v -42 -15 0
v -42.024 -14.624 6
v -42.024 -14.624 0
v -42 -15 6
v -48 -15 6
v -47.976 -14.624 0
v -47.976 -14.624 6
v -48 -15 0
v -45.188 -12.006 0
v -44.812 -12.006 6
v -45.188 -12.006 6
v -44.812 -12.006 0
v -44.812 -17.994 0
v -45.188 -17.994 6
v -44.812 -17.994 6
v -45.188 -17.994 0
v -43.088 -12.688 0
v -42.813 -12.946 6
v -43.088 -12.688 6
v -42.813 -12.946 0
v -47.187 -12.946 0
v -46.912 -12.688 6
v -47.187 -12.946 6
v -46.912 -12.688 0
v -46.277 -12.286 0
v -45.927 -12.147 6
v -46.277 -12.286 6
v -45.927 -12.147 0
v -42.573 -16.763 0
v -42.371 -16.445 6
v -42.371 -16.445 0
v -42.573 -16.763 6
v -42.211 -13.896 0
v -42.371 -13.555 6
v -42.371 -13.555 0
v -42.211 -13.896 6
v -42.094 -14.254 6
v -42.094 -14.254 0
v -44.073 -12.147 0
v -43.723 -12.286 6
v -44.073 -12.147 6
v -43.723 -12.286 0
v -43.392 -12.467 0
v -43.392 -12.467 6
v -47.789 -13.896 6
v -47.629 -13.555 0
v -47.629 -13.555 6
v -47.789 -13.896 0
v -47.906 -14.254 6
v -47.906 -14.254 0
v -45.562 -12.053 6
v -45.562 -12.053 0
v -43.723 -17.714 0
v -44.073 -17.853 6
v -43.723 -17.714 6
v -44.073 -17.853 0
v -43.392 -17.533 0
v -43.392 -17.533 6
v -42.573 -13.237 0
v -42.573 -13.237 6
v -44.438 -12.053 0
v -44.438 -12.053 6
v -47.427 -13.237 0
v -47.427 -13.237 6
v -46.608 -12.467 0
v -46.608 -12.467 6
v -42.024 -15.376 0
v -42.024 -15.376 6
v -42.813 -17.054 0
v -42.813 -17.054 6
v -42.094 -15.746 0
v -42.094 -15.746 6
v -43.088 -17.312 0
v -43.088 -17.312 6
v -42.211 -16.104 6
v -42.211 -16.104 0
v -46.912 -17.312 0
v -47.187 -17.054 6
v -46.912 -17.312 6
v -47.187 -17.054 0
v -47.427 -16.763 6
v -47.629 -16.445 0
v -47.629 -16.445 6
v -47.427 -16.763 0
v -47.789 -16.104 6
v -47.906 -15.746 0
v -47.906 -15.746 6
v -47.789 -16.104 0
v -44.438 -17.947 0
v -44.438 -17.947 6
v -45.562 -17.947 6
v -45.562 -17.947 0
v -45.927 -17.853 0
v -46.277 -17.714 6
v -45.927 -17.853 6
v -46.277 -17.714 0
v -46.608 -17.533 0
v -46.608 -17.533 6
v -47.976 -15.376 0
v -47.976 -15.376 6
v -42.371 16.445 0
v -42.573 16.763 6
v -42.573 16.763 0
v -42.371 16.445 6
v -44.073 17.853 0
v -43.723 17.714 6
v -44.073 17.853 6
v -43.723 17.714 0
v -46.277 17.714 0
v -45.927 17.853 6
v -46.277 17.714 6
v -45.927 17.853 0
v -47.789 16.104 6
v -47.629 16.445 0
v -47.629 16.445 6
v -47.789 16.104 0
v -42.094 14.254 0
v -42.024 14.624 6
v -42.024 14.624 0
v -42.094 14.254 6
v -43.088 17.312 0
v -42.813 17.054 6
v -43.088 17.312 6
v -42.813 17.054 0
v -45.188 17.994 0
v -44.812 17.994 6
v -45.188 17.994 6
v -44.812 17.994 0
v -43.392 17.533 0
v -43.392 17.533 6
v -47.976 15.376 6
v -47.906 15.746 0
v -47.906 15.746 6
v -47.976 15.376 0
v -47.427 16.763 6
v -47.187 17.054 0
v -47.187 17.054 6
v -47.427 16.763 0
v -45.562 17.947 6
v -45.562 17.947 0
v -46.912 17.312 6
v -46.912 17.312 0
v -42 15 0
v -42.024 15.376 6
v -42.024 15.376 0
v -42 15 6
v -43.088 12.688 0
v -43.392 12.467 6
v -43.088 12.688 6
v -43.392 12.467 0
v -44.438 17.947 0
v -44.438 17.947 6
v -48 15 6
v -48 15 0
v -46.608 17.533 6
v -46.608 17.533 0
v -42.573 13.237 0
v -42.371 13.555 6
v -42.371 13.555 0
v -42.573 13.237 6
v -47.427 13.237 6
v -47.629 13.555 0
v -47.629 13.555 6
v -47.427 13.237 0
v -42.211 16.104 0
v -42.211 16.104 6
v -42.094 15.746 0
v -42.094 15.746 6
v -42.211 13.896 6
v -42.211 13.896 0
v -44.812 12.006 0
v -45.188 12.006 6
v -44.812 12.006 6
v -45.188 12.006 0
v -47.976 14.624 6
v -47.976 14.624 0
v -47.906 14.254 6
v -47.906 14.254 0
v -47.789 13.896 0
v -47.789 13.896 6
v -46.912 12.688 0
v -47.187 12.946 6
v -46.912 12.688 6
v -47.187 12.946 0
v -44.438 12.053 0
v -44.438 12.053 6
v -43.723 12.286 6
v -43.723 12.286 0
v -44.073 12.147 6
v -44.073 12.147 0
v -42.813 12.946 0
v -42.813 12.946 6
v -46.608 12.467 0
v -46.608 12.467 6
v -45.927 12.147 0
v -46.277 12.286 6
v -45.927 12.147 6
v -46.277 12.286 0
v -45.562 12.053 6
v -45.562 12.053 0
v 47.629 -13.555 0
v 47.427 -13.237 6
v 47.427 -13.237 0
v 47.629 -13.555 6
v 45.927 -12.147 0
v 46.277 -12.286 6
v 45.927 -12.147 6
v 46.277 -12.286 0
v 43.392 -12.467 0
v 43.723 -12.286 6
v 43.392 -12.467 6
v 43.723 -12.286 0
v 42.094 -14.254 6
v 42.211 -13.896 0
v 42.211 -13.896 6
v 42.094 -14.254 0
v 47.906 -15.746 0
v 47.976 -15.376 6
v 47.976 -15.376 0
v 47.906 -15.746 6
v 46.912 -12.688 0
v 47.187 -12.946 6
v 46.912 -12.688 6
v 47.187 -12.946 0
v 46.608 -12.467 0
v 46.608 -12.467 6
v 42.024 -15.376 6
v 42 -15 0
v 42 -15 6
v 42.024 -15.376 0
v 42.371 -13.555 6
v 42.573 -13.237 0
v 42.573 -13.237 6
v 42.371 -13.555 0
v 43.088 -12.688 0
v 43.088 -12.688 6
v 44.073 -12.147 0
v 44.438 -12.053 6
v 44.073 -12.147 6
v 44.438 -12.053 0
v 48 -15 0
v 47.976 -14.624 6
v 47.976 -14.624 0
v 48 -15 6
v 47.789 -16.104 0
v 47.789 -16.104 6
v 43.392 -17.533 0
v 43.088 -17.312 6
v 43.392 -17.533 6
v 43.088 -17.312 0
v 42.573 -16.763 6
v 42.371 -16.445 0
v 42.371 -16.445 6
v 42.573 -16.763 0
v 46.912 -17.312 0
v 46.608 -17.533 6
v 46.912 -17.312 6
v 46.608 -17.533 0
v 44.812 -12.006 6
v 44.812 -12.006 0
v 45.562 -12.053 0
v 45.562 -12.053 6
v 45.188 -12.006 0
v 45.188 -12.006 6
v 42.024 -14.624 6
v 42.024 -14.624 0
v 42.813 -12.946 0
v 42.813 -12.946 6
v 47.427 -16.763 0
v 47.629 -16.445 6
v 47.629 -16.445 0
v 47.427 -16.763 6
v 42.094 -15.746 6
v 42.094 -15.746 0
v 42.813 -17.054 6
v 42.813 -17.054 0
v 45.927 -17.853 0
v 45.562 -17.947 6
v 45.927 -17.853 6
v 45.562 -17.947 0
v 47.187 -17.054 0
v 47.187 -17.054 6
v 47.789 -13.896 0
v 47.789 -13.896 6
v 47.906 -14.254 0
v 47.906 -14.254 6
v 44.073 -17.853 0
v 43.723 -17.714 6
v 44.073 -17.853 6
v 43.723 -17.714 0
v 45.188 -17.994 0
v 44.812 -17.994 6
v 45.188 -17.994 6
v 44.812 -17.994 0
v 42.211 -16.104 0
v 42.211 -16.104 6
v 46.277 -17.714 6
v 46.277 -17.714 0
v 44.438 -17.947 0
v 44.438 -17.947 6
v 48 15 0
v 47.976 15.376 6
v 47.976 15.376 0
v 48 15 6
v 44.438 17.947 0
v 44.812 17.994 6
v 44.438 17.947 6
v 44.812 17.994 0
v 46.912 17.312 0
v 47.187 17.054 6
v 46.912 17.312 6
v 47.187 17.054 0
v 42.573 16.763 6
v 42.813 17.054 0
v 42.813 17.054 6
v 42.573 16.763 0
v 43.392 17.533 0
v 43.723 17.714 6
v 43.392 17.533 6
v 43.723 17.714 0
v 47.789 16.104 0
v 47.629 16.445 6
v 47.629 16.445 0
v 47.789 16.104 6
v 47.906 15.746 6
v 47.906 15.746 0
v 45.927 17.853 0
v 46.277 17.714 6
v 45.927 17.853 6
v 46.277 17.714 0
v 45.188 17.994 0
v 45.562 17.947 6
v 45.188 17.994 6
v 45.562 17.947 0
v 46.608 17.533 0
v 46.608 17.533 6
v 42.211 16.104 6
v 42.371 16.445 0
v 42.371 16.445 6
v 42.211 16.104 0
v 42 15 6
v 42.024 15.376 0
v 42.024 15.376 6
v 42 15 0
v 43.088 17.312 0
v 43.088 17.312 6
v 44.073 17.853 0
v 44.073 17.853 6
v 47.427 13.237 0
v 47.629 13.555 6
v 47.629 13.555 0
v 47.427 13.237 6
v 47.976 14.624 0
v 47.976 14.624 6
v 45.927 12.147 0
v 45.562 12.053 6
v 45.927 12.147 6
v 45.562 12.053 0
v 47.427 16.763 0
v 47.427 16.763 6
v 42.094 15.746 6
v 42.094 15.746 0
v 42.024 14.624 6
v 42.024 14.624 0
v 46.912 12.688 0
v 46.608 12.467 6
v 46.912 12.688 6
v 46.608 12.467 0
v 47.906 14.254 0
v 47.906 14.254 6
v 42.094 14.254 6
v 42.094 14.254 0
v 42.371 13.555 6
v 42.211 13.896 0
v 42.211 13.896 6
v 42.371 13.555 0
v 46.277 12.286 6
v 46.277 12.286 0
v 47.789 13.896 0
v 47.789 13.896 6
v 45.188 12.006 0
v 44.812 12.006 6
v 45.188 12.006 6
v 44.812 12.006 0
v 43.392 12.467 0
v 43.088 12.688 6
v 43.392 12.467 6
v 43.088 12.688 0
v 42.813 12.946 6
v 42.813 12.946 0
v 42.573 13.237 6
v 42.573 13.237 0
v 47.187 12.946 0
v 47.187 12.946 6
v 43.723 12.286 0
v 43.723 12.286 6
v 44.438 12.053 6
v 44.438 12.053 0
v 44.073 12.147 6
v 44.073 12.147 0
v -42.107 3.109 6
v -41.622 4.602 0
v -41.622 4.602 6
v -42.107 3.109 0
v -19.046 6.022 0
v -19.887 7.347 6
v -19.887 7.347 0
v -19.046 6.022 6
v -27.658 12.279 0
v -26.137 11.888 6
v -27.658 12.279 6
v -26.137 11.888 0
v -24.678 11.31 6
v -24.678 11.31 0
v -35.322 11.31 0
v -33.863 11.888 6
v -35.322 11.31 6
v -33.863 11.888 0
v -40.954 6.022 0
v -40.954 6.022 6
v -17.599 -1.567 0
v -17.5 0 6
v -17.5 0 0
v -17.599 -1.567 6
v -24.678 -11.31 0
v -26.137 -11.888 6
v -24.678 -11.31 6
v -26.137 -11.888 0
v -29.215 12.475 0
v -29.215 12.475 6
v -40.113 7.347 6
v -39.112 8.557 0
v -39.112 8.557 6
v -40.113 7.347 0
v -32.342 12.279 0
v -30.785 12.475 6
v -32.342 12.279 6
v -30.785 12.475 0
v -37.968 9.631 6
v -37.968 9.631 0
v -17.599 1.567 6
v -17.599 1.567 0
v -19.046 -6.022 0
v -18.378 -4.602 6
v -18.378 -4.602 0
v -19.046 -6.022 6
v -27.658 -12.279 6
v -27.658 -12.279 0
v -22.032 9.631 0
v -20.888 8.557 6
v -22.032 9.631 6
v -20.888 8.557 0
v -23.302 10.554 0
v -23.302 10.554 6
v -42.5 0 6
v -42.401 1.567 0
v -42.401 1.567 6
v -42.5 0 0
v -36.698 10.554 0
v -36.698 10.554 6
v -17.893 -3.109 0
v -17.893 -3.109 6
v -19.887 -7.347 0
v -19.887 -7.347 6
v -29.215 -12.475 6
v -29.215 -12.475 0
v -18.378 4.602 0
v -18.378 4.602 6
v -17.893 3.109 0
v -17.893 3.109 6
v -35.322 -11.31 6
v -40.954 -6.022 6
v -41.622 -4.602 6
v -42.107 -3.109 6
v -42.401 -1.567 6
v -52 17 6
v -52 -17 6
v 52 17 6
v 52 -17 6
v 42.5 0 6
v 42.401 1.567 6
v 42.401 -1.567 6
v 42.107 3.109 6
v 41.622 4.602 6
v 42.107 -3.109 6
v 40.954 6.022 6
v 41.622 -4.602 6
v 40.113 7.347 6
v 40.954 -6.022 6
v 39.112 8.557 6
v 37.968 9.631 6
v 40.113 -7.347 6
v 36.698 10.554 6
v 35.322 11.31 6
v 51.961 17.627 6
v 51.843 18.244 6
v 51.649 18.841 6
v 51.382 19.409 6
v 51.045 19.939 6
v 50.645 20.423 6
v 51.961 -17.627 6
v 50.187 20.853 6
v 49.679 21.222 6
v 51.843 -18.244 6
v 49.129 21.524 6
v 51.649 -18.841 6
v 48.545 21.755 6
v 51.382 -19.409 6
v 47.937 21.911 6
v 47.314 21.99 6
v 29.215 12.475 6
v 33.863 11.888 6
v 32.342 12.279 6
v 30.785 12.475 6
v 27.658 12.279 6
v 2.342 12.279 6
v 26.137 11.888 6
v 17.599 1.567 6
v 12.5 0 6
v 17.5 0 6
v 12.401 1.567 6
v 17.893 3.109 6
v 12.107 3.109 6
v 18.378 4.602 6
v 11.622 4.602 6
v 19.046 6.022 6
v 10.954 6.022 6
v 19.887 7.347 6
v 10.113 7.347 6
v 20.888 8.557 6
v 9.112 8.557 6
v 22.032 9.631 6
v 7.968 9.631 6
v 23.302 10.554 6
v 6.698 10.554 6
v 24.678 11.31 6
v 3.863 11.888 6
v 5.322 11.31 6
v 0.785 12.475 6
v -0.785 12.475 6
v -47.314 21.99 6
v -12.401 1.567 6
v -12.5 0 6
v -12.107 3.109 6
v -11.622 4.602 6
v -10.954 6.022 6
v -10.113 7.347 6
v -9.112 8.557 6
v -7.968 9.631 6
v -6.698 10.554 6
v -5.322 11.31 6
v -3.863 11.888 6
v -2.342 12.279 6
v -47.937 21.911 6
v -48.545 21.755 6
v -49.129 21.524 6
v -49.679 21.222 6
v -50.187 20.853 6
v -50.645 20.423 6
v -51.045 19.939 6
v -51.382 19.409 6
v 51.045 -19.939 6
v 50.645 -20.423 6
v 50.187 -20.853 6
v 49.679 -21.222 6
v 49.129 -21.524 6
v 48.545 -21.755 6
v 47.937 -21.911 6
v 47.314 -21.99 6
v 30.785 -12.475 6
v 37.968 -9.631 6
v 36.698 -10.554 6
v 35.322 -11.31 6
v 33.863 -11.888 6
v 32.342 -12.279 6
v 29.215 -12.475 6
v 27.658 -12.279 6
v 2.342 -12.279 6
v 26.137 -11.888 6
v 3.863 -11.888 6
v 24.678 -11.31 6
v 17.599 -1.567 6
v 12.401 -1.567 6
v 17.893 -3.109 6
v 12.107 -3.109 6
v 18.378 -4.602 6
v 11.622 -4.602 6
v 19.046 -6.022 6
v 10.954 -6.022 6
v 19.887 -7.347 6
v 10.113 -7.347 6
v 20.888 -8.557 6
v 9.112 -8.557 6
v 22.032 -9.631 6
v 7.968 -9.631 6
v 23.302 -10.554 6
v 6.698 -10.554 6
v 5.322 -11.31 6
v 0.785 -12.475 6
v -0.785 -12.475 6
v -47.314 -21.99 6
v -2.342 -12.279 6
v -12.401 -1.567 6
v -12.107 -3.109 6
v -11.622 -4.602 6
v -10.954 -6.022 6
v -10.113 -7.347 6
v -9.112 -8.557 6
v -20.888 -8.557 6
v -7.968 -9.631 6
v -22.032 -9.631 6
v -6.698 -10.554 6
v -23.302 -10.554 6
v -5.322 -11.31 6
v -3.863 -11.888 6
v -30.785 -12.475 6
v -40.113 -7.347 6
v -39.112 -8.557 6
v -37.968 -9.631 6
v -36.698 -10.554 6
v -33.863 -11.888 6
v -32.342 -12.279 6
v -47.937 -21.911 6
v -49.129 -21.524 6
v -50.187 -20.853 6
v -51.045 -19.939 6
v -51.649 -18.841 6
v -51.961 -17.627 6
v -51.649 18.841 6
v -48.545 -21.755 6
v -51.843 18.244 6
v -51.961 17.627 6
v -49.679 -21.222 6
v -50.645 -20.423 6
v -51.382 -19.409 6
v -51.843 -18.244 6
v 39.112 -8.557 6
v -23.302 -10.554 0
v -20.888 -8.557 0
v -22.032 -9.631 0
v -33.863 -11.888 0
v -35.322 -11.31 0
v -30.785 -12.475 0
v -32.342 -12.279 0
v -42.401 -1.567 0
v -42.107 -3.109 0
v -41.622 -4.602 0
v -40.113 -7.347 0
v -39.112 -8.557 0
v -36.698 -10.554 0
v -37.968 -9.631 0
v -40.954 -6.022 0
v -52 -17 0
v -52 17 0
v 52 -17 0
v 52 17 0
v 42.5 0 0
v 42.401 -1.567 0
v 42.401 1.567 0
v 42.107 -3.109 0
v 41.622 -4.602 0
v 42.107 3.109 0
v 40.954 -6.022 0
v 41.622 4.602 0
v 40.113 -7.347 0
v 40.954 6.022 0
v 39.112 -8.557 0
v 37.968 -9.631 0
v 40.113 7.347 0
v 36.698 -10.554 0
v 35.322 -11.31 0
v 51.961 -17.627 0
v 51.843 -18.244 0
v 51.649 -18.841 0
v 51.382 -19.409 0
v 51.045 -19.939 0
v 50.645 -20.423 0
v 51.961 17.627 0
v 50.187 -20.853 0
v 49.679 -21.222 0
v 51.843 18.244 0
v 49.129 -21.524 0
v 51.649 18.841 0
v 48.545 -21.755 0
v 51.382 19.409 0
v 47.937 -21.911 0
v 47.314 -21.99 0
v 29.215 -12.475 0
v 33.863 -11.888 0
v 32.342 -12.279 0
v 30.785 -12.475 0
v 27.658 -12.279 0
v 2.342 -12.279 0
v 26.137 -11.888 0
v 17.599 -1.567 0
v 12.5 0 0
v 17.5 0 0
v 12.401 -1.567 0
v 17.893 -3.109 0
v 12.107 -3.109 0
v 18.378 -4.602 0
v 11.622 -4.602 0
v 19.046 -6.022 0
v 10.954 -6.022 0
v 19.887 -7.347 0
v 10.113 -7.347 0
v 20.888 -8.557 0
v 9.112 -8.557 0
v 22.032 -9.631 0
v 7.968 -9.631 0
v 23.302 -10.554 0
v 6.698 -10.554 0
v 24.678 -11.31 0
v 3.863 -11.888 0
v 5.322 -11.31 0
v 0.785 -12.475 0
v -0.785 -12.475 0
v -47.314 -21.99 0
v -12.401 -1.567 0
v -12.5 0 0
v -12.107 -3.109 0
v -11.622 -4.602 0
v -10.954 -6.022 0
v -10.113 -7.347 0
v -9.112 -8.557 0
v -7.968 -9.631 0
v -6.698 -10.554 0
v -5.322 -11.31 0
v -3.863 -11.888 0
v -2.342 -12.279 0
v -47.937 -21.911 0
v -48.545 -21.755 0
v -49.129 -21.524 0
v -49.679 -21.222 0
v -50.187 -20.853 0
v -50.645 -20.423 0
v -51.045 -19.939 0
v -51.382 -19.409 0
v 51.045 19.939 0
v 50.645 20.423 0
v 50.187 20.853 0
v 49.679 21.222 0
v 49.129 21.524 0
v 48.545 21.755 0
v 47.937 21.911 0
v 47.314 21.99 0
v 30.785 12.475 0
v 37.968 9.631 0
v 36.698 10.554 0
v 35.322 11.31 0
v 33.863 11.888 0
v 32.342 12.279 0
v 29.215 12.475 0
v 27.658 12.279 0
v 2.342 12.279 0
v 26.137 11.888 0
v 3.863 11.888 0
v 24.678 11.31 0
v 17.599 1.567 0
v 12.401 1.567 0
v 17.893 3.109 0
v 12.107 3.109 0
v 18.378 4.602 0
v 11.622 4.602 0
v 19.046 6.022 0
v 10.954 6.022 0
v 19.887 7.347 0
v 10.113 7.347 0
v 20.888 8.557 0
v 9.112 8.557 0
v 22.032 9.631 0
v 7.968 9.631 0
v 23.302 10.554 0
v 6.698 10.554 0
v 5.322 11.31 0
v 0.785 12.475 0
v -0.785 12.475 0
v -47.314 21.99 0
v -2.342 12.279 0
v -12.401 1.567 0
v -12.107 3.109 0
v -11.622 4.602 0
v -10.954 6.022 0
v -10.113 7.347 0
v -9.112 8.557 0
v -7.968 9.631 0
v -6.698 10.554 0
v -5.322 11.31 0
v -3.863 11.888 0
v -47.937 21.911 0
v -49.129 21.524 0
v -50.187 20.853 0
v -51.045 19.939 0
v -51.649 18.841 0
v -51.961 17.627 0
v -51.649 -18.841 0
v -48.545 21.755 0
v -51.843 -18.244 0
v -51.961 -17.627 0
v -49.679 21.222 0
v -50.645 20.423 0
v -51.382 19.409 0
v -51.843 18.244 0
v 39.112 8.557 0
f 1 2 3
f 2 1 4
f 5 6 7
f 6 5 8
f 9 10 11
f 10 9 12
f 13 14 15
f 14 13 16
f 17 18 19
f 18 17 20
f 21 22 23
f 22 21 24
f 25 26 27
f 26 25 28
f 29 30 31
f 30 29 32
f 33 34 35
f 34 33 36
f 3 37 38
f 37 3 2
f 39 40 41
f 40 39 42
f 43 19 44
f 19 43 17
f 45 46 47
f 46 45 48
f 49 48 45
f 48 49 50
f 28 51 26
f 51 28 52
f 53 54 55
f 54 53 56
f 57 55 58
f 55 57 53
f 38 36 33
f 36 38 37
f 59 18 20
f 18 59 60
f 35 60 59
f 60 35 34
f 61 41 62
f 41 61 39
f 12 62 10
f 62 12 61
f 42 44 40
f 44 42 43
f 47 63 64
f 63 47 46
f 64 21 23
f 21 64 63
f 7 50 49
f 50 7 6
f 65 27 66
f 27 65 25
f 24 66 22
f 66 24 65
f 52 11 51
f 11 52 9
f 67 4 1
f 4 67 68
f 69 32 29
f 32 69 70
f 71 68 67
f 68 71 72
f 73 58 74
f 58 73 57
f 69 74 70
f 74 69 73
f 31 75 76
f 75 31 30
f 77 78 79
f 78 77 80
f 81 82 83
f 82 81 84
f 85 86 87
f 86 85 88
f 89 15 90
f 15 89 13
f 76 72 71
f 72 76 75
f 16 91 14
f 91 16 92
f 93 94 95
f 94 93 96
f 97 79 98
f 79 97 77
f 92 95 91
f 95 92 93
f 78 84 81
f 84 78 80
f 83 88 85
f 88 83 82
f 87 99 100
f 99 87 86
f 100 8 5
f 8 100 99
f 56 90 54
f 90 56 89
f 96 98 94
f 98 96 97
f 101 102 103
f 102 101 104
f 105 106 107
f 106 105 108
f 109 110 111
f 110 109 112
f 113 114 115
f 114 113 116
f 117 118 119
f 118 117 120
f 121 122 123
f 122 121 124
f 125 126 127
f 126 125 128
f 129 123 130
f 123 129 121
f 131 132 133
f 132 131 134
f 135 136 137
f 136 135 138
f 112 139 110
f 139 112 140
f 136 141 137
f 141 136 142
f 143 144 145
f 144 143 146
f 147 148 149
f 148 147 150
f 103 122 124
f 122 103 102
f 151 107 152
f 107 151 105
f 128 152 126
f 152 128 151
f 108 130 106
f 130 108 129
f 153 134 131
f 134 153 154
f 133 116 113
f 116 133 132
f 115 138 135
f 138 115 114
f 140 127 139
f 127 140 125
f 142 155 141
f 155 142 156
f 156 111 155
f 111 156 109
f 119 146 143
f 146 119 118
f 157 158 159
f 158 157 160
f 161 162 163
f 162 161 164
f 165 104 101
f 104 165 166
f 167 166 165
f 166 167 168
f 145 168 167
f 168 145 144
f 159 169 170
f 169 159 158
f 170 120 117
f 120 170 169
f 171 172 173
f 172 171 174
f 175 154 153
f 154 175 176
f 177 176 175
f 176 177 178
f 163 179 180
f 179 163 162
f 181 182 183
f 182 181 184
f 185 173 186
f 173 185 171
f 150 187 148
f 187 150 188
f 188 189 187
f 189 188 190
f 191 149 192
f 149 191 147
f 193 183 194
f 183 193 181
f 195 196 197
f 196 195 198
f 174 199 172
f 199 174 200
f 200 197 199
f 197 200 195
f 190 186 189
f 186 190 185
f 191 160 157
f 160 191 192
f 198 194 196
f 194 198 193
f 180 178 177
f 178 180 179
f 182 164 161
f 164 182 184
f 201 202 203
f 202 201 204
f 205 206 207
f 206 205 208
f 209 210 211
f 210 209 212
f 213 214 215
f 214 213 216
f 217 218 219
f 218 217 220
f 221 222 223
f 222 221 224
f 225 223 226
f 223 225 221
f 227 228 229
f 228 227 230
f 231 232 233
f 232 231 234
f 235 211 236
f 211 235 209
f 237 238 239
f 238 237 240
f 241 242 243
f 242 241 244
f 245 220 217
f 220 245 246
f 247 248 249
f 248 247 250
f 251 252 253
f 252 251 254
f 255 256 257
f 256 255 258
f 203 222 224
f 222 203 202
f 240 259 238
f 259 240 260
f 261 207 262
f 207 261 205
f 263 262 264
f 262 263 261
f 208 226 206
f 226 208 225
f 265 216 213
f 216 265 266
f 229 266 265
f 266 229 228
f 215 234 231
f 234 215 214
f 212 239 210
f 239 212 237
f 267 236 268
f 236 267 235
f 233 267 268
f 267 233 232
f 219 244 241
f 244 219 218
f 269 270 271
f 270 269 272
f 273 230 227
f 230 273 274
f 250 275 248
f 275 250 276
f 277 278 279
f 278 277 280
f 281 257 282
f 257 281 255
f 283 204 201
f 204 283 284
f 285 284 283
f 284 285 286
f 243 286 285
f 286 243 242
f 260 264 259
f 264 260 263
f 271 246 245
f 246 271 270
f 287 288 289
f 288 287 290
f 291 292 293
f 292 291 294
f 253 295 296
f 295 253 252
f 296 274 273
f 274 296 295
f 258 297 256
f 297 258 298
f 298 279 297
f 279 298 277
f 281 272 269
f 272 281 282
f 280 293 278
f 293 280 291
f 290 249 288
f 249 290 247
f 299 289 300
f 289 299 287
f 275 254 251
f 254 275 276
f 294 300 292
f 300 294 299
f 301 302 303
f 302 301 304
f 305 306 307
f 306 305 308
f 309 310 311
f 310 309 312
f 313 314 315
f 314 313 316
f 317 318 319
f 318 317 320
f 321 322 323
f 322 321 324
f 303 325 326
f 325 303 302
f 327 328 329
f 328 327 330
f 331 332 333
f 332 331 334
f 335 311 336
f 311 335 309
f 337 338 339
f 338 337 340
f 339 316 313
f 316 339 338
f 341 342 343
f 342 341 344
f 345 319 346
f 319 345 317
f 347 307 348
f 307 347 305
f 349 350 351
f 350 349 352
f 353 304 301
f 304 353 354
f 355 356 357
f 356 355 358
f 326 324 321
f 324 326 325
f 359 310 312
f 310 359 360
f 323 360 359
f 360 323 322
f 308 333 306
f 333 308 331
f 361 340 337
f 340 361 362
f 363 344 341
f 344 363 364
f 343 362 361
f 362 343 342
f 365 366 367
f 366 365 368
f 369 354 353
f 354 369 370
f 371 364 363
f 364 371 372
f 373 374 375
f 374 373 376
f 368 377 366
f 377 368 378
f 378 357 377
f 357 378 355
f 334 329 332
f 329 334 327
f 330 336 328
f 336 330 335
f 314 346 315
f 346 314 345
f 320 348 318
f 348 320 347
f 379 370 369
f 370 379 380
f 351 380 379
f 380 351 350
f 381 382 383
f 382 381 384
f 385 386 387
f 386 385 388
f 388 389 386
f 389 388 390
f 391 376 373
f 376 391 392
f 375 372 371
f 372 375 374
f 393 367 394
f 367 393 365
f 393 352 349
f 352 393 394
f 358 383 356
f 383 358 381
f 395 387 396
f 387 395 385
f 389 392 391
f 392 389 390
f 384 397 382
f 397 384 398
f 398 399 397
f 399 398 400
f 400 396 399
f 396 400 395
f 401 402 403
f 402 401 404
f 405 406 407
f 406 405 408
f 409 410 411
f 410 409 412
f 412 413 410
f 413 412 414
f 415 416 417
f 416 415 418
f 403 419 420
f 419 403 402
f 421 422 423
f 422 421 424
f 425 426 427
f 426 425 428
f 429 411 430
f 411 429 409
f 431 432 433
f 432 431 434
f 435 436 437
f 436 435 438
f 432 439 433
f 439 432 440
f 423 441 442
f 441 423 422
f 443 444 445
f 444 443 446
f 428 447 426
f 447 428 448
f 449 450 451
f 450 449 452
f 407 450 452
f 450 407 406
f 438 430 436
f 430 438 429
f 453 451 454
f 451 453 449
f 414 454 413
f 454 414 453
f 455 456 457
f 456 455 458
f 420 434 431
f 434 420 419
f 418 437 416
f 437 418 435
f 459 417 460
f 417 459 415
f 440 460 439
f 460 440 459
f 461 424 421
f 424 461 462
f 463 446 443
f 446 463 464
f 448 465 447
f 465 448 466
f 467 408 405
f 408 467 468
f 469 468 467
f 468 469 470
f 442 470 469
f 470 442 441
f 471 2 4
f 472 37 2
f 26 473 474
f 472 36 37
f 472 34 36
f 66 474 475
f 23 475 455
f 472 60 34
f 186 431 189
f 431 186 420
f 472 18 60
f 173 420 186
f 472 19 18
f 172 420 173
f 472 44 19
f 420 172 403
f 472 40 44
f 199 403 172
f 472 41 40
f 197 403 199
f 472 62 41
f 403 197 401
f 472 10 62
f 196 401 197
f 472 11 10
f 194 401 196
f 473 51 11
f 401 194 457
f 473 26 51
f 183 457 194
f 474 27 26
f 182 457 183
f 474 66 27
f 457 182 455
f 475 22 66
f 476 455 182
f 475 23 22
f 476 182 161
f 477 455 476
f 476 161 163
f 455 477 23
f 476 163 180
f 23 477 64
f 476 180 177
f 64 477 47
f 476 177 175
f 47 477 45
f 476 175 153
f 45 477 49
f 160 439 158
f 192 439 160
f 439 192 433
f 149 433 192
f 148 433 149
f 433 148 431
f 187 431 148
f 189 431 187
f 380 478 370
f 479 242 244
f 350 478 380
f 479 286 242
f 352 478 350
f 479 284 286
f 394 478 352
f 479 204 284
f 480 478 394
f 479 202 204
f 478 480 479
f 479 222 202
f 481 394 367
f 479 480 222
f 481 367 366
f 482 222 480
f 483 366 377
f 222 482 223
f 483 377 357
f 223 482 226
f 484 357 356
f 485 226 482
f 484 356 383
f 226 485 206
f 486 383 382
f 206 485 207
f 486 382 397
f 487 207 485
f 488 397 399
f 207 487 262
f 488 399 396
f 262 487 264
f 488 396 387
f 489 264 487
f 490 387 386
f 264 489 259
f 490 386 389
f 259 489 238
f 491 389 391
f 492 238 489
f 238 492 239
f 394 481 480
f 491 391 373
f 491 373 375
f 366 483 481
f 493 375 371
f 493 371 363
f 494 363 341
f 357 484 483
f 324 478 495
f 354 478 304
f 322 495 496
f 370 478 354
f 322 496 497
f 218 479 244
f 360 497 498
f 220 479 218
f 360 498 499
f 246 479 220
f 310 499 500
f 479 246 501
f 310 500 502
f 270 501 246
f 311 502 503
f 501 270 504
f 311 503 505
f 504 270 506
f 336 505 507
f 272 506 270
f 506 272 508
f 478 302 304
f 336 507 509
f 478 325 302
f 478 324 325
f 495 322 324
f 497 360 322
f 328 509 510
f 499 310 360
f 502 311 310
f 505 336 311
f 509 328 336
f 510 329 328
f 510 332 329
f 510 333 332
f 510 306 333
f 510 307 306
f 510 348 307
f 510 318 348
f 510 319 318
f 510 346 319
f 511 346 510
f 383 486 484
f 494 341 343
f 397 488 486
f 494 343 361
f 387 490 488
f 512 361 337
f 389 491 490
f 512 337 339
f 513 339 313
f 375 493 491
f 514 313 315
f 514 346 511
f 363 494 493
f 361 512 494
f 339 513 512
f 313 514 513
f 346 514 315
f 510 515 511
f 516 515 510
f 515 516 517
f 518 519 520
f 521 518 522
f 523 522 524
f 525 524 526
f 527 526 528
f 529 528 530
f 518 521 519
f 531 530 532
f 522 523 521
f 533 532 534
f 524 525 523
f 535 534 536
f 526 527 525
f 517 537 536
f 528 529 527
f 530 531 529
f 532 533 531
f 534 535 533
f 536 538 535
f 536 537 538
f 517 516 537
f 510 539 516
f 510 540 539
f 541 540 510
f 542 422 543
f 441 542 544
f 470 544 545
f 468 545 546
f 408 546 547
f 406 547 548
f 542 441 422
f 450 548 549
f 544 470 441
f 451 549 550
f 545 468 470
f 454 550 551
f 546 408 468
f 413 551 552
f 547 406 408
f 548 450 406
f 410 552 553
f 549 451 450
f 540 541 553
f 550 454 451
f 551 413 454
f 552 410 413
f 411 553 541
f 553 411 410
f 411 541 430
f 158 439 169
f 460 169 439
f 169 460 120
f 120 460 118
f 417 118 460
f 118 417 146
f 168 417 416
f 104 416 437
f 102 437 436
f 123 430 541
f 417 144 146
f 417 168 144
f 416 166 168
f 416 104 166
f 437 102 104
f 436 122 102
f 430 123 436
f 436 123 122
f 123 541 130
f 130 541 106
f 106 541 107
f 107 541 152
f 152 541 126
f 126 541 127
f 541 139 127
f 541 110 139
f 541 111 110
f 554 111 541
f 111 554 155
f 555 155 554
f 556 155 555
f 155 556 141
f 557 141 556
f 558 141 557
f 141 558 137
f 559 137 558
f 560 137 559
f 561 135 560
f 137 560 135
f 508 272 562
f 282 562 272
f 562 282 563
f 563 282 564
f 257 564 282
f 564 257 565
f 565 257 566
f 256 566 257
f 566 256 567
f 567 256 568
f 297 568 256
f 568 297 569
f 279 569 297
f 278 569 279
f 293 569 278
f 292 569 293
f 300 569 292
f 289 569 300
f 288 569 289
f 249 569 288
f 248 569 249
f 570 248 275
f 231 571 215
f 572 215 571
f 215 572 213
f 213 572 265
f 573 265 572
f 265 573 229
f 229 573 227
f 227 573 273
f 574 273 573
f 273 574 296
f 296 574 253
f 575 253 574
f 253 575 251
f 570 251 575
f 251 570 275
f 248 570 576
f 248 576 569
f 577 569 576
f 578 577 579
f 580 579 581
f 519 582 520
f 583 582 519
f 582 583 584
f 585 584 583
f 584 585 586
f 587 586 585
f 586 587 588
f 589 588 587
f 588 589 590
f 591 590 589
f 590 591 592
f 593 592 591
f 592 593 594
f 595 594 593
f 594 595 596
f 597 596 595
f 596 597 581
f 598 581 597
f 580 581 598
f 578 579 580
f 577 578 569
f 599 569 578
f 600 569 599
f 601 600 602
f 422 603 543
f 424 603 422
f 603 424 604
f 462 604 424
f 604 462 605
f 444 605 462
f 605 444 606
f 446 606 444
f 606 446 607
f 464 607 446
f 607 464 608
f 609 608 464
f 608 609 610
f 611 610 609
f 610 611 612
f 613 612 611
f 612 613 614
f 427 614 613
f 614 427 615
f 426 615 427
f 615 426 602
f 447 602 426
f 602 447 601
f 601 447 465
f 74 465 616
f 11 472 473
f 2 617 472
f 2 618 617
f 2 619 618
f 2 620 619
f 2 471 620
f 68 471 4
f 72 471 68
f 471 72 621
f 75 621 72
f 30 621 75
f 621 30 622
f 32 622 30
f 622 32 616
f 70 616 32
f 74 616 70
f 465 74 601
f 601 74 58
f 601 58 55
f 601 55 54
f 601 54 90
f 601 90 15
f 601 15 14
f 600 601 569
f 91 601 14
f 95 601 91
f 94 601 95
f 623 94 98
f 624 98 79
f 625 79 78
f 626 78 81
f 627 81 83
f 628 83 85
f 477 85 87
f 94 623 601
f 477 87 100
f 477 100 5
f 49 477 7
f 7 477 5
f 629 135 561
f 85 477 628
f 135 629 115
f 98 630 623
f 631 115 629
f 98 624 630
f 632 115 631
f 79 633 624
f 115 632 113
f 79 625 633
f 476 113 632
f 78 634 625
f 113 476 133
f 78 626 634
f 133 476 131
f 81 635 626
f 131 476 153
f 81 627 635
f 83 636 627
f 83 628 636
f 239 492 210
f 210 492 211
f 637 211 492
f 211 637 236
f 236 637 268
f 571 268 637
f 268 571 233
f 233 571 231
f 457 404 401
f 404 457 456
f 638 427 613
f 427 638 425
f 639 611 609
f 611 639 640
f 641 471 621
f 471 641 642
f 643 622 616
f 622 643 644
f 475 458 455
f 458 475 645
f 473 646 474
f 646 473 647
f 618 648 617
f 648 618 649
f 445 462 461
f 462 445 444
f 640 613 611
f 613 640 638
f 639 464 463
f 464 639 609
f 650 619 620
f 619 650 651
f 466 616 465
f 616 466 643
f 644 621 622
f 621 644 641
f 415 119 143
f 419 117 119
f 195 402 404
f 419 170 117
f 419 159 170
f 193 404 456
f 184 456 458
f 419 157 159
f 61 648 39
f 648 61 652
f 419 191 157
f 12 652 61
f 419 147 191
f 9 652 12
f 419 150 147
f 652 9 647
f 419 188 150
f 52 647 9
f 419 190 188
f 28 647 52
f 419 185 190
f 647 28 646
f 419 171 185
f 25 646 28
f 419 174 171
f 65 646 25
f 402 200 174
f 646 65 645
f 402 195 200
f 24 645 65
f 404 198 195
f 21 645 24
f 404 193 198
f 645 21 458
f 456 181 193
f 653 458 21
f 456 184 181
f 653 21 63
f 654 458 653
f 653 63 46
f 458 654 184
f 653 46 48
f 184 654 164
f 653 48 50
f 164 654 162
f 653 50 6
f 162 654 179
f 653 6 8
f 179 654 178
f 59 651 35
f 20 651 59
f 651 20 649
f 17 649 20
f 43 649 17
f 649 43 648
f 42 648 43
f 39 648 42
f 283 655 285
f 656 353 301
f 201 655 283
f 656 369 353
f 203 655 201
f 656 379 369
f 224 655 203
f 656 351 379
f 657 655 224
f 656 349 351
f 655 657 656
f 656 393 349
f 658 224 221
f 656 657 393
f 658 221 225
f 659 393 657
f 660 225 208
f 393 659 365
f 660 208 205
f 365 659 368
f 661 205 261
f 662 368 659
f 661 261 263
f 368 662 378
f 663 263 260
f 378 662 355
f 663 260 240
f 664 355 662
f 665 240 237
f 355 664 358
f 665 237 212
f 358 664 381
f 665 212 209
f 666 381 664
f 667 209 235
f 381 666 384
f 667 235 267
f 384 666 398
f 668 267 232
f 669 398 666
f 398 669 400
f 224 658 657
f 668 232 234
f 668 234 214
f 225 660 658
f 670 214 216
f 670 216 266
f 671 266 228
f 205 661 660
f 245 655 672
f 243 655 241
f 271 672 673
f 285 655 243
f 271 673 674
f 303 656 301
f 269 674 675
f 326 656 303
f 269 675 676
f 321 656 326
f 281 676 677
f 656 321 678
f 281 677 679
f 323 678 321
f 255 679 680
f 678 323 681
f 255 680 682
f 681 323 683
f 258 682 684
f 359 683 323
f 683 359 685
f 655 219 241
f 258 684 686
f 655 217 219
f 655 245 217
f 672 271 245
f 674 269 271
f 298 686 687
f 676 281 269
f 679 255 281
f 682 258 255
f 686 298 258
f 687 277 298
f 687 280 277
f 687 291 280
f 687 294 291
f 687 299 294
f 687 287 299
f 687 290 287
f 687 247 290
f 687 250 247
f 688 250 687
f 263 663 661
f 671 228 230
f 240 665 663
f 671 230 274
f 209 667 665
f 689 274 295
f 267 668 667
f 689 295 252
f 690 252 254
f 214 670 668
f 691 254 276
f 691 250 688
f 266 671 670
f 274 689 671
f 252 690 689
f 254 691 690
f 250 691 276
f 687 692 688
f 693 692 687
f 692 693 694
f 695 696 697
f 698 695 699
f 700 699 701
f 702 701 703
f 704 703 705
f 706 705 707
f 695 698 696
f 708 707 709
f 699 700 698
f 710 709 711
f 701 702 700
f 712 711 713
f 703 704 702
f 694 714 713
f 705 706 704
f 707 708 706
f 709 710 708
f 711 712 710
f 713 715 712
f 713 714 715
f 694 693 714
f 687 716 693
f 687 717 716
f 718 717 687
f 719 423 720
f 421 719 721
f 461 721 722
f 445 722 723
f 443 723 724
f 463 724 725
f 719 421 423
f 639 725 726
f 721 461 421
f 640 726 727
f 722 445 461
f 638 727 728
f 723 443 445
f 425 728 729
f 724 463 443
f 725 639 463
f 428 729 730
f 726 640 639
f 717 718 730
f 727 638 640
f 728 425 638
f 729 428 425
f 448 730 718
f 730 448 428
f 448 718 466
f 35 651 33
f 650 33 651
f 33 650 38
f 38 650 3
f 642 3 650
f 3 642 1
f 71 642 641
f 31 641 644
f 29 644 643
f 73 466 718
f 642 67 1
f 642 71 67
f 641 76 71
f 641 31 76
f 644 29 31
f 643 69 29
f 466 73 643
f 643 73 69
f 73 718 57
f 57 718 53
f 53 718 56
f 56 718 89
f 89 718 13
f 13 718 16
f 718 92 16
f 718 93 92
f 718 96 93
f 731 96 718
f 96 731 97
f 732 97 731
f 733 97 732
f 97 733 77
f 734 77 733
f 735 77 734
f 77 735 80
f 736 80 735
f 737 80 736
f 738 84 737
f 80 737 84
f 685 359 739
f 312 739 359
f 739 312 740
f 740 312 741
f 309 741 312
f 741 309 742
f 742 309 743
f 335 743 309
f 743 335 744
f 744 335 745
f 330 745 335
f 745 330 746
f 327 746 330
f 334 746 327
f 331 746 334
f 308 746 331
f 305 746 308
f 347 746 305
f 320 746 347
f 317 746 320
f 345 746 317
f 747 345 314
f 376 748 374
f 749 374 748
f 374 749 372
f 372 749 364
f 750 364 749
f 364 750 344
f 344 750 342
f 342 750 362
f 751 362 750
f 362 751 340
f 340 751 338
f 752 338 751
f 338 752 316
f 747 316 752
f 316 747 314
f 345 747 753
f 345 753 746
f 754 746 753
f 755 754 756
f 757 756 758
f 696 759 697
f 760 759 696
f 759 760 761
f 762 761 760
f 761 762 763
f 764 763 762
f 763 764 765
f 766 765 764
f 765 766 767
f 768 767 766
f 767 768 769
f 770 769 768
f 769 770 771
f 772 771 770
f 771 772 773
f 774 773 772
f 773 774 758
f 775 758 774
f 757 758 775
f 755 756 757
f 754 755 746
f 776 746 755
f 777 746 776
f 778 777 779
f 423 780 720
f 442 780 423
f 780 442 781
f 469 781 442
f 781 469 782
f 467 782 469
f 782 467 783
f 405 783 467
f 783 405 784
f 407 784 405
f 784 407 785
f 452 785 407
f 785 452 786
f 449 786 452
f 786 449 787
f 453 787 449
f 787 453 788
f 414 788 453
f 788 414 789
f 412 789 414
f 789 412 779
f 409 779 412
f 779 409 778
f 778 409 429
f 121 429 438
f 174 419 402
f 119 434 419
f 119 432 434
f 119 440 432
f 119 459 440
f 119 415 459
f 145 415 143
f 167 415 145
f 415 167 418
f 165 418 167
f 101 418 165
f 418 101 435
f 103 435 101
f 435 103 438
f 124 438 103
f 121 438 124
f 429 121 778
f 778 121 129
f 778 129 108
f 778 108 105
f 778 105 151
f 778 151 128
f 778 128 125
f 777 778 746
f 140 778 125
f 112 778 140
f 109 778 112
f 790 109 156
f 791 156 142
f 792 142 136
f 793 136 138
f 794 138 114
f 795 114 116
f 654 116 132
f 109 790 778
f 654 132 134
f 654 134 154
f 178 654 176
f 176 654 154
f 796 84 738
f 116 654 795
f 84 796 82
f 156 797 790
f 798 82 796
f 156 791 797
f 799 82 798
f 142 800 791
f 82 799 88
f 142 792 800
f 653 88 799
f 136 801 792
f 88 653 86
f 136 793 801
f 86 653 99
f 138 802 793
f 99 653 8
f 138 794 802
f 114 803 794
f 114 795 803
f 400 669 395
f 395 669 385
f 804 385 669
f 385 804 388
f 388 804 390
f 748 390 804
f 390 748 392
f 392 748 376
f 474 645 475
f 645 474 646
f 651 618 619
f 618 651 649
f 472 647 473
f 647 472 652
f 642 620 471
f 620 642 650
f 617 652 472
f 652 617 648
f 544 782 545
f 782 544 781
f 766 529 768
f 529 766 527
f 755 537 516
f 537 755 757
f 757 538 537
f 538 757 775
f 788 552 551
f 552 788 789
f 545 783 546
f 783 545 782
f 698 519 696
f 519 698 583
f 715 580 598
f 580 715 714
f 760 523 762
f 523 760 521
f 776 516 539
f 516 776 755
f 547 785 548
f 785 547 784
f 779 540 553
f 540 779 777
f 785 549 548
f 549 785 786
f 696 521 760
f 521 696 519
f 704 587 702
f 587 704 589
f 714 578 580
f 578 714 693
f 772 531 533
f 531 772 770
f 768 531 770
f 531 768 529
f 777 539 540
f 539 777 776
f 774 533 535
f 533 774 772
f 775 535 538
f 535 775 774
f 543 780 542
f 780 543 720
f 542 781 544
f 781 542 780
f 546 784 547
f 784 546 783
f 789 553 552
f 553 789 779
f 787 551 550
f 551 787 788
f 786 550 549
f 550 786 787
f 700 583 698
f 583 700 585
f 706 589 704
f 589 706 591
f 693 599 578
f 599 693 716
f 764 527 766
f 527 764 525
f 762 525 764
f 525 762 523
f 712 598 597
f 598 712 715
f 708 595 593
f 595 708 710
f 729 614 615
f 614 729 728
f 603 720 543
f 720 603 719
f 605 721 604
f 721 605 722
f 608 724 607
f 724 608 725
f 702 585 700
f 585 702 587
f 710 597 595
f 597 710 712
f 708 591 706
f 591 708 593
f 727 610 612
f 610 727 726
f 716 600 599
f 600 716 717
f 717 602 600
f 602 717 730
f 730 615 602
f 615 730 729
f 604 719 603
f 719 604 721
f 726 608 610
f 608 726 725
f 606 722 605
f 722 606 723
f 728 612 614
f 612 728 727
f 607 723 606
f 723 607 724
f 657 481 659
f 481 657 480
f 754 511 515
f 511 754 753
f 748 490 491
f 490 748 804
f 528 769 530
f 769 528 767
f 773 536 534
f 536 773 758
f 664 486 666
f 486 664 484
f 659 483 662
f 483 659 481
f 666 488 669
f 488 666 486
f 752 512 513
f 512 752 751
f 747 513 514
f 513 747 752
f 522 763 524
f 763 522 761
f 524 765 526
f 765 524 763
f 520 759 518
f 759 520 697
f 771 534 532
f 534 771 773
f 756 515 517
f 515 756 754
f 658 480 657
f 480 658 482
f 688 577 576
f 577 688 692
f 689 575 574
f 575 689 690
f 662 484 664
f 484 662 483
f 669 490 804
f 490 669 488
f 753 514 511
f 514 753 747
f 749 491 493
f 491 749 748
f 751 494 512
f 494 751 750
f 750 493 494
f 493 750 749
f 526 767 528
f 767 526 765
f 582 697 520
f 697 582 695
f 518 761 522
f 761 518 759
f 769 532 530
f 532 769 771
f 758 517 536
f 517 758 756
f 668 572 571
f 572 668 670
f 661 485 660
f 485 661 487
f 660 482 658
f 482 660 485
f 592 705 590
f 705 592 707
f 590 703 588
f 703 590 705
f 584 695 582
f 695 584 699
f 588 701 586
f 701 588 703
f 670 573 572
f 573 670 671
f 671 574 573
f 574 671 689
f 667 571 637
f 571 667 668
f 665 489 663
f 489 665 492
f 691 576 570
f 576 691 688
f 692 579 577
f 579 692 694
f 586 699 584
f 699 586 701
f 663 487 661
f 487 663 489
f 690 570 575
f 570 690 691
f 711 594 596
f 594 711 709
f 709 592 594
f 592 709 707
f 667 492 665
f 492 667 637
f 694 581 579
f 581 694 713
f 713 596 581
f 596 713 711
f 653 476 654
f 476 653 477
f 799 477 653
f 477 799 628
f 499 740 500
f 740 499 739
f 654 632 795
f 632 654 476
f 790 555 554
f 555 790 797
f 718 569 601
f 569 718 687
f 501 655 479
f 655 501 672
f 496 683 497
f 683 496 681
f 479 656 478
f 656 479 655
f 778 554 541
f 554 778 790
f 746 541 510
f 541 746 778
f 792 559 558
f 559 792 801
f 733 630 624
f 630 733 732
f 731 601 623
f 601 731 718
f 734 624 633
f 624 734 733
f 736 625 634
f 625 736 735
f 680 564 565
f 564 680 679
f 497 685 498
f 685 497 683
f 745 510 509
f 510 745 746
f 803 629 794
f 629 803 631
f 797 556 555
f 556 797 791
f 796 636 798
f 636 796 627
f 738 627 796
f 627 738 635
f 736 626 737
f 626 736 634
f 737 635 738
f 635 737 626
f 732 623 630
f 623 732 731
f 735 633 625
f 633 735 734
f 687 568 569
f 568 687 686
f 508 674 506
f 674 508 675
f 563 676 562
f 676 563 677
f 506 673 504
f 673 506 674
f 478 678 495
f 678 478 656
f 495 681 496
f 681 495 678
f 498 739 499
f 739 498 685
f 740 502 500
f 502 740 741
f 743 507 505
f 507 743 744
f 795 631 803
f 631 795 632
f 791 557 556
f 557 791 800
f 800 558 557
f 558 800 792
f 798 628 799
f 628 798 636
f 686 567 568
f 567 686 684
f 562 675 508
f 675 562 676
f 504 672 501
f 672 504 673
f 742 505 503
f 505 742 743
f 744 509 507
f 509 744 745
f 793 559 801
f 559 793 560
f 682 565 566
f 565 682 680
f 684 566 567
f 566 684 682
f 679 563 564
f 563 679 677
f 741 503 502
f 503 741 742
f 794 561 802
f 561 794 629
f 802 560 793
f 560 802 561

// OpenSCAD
$fn = 50;


difference() {
	union() {
		hull() {
			translate(v = [-47.0000000000, 17.0000000000, 0]) {
				cylinder(h = 6, r = 5);
			}
			translate(v = [47.0000000000, 17.0000000000, 0]) {
				cylinder(h = 6, r = 5);
			}
			translate(v = [-47.0000000000, -17.0000000000, 0]) {
				cylinder(h = 6, r = 5);
			}
			translate(v = [47.0000000000, -17.0000000000, 0]) {
				cylinder(h = 6, r = 5);
			}
		}
	}
	union() {
		#translate(v = [-45.0000000000, -15.0000000000, -100.0000000000]) {
			cylinder(h = 200, r = 3.0000000000);
		}
		#translate(v = [-45.0000000000, 15.0000000000, -100.0000000000]) {
			cylinder(h = 200, r = 3.0000000000);
		}
		#translate(v = [45.0000000000, -15.0000000000, -100.0000000000]) {
			cylinder(h = 200, r = 3.0000000000);
		}
		#translate(v = [45.0000000000, 15.0000000000, -100.0000000000]) {
			cylinder(h = 200, r = 3.0000000000);
		}
		#translate(v = [-30.0000000000, 0, 0]) {
			cylinder(h = 6, r = 12.5000000000);
		}
		#cylinder(h = 6, r = 12.5000000000);
		#translate(v = [30.0000000000, 0, 0]) {
			cylinder(h = 6, r = 12.5000000000);
		}
	}
}
